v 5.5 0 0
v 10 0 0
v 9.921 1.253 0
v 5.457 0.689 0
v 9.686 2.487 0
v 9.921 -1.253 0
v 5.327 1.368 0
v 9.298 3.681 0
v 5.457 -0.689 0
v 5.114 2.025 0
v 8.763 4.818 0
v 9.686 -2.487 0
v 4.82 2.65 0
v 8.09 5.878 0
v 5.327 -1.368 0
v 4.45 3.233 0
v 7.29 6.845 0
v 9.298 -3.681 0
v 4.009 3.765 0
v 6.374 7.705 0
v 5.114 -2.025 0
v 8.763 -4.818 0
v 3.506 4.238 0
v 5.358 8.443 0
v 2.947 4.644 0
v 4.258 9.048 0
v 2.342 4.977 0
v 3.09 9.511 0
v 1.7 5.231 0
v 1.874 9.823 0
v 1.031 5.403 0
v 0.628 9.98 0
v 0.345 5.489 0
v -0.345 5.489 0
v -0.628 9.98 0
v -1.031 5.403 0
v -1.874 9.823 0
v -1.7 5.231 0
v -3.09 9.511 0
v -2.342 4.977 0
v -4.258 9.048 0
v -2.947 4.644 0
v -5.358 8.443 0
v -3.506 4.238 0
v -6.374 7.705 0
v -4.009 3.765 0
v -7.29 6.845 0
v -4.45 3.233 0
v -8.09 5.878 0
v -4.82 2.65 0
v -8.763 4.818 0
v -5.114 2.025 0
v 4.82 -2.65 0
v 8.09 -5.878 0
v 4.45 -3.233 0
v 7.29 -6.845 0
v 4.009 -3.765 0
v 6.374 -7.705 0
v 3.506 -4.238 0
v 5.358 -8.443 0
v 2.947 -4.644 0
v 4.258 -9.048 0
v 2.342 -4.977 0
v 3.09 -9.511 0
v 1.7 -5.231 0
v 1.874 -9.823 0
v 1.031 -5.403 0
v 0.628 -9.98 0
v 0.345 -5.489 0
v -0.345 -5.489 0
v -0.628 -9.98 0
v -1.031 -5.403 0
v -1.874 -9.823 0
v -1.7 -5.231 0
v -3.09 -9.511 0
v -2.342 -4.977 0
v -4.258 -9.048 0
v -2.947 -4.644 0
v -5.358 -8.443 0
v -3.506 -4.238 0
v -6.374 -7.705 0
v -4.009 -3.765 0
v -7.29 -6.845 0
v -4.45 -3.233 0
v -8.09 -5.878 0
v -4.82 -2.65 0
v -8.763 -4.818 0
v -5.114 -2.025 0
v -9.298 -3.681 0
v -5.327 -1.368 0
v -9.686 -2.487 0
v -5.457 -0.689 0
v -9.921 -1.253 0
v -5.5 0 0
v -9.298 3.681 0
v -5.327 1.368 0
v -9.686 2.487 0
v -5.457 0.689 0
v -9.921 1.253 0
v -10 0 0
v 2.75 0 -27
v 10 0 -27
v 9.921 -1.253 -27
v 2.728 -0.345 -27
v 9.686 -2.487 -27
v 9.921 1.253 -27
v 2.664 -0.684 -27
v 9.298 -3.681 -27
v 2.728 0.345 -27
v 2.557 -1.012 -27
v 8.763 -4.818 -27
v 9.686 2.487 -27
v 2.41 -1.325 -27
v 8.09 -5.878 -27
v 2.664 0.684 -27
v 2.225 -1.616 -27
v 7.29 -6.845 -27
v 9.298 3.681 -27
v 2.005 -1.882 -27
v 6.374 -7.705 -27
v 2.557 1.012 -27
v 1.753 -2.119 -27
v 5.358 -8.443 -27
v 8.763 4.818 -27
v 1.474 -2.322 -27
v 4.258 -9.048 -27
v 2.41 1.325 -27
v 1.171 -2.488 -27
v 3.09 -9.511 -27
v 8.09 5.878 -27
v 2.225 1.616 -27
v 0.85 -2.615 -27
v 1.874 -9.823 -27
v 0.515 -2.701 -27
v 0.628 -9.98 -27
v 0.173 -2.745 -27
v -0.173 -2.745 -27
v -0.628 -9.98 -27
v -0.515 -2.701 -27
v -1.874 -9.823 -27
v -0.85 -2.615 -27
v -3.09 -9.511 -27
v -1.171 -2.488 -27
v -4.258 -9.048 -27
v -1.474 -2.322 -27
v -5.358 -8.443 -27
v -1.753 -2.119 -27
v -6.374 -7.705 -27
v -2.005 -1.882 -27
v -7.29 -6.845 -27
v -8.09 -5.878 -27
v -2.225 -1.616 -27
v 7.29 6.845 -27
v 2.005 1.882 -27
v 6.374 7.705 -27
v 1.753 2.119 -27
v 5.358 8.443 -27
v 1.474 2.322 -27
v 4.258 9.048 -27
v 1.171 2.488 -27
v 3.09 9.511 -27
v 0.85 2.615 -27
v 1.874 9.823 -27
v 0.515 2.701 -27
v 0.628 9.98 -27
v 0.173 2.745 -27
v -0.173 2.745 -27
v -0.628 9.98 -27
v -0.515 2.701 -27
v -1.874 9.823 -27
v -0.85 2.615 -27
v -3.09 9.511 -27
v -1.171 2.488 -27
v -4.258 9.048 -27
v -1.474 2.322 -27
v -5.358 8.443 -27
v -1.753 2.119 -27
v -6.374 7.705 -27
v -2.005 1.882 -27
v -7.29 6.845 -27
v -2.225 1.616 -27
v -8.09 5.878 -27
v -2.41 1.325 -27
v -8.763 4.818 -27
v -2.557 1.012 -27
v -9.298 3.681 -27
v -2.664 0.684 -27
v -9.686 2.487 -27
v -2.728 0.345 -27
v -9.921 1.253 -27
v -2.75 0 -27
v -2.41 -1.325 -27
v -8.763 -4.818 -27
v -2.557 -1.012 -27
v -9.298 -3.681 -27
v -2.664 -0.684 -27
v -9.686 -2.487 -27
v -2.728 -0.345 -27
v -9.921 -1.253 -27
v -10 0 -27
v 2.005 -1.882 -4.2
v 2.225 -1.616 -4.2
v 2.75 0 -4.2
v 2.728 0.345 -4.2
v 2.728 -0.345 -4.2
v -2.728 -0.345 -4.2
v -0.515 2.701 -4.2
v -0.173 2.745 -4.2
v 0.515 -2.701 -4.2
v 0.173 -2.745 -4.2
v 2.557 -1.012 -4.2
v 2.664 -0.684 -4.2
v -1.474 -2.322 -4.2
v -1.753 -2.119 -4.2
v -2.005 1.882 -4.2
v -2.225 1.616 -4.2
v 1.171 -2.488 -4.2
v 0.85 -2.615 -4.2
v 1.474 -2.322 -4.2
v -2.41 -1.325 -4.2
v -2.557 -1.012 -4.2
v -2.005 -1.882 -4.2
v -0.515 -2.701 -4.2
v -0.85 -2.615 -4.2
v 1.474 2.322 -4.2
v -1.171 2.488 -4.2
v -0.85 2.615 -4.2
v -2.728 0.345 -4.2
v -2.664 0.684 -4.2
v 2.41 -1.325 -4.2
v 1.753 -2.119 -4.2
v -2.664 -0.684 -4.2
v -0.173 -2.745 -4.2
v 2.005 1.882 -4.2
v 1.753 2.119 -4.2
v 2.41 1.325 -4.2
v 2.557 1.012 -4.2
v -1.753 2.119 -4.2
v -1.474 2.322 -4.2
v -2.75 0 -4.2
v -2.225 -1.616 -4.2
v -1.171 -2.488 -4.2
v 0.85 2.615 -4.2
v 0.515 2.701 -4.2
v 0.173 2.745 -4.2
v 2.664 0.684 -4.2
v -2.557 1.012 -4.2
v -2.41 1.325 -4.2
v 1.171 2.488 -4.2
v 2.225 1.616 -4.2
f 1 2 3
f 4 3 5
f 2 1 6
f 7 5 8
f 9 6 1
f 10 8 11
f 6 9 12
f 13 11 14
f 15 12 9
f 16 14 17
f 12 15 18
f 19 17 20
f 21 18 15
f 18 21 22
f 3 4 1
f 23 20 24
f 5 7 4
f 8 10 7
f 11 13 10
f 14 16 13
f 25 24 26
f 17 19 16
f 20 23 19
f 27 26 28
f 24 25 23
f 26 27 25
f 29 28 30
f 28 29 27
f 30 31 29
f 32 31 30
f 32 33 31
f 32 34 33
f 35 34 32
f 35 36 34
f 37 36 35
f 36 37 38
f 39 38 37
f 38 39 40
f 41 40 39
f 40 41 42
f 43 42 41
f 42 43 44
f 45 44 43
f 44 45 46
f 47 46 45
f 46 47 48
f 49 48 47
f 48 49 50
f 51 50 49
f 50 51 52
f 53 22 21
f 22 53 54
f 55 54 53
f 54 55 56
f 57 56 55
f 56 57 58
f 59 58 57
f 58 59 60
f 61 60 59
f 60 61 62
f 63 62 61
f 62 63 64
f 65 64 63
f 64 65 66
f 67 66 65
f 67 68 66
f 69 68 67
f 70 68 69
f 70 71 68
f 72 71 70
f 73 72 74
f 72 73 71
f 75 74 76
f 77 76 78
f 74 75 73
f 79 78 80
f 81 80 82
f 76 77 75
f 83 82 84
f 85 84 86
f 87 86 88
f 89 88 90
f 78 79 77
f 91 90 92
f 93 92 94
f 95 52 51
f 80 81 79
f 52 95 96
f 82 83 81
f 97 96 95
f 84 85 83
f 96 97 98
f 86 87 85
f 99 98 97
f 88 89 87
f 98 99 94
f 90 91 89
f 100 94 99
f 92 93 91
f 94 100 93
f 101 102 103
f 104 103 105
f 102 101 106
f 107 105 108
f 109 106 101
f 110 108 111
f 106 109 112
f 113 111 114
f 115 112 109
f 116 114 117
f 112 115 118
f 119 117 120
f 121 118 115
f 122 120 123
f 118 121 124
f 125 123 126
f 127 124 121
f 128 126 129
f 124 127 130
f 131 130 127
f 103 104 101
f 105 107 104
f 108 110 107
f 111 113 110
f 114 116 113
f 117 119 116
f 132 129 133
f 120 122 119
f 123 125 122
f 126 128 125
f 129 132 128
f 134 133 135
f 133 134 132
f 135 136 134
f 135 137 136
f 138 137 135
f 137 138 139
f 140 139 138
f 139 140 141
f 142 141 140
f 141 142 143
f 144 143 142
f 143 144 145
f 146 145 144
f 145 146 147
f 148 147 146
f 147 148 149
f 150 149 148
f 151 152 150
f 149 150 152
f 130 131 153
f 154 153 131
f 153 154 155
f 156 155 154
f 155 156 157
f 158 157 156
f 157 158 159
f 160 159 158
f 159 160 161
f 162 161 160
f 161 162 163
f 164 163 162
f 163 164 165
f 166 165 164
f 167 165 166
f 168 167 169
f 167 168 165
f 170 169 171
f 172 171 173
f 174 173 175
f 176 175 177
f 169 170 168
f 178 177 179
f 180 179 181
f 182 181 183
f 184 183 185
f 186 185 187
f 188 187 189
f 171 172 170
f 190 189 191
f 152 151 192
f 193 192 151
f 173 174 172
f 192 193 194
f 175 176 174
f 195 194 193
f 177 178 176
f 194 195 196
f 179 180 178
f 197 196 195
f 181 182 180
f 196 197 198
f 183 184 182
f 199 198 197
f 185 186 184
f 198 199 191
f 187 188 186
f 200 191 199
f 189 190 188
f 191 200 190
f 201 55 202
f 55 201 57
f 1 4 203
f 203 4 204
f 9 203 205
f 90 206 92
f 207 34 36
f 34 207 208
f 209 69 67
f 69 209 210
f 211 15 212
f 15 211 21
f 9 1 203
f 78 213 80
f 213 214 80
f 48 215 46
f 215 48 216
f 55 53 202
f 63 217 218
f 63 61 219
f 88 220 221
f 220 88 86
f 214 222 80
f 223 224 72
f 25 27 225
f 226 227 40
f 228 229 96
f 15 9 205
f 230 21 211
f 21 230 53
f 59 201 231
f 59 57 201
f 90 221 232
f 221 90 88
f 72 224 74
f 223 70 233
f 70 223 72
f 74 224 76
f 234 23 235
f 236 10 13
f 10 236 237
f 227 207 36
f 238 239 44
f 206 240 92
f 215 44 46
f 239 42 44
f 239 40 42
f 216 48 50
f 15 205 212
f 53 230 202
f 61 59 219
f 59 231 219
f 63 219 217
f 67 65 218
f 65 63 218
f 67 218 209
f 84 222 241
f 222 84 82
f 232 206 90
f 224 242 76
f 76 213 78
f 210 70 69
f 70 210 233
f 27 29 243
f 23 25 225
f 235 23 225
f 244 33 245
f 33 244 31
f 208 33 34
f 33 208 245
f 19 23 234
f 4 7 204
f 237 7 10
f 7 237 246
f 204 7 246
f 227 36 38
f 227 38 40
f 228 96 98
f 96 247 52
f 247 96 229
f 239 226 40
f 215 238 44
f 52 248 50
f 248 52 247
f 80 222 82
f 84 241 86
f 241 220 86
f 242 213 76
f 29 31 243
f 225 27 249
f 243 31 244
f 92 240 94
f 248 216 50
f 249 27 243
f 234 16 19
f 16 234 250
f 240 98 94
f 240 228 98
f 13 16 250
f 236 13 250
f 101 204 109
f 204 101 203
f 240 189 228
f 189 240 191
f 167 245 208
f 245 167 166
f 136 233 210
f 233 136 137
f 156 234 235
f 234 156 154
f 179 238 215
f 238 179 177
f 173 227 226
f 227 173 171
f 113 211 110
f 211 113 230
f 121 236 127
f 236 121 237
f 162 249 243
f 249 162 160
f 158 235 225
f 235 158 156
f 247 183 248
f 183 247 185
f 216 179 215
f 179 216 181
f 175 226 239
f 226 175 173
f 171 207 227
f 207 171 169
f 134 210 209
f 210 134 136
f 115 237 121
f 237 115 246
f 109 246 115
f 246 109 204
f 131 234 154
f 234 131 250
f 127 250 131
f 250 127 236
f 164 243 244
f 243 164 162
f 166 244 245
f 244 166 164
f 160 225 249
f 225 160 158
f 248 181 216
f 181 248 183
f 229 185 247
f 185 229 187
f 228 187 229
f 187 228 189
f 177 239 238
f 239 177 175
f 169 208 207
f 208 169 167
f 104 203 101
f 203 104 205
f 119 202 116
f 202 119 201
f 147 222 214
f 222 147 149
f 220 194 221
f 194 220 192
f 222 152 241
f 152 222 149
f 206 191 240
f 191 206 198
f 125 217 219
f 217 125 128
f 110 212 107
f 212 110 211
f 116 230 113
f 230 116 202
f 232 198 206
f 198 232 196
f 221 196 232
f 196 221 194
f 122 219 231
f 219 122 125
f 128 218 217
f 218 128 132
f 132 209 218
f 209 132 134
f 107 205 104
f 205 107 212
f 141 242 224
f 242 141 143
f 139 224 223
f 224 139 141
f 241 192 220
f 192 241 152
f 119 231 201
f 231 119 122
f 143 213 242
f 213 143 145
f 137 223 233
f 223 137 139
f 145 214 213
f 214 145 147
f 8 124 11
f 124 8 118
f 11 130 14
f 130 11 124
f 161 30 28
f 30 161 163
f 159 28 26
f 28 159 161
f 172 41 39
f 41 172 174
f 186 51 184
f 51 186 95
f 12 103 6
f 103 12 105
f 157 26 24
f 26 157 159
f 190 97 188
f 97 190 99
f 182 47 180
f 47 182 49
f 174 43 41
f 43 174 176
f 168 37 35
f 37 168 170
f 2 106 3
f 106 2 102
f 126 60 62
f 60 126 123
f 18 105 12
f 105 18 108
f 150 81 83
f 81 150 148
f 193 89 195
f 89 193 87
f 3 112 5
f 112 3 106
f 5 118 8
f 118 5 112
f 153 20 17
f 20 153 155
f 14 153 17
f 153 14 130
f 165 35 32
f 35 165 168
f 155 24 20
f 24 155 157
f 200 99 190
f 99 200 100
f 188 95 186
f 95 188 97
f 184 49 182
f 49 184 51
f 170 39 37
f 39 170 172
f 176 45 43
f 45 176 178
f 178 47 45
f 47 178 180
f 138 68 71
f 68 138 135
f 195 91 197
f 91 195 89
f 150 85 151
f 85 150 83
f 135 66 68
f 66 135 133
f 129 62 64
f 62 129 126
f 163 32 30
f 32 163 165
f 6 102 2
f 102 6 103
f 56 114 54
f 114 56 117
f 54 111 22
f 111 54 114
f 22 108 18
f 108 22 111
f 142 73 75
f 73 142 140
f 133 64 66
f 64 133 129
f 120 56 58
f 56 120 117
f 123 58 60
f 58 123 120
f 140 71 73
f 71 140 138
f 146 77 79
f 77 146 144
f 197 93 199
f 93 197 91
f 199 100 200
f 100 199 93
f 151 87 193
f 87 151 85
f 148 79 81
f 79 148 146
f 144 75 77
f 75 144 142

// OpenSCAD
$fn = 50;


difference() {
	union() {
		translate(v = [0, 0, -27.0000000000]) {
			cylinder(h = 27, r = 10.0000000000);
		}
		cylinder(h = 0, r = 16.0000000000);
	}
	union() {
		translate(v = [0, 0, 0]) {
			rotate(a = [0, 0, 0]) {
				difference() {
					union() {
						#translate(v = [0, 0, -27.0000000000]) {
							cylinder(h = 27, r = 2.2500000000);
						}
						#translate(v = [0, 0, -4.2000000000]) {
							cylinder(h = 4.2000000000, r = 10.0000000000, r1 = 2.7500000000, r2 = 5.5000000000);
						}
						#translate(v = [0, 0, -27.0000000000]) {
							cylinder(h = 27, r = 2.7500000000);
						}
						#translate(v = [0, 0, -27.0000000000]) {
							cylinder(h = 27, r = 2.2500000000);
						}
					}
					union();
				}
			}
		}
	}
}
